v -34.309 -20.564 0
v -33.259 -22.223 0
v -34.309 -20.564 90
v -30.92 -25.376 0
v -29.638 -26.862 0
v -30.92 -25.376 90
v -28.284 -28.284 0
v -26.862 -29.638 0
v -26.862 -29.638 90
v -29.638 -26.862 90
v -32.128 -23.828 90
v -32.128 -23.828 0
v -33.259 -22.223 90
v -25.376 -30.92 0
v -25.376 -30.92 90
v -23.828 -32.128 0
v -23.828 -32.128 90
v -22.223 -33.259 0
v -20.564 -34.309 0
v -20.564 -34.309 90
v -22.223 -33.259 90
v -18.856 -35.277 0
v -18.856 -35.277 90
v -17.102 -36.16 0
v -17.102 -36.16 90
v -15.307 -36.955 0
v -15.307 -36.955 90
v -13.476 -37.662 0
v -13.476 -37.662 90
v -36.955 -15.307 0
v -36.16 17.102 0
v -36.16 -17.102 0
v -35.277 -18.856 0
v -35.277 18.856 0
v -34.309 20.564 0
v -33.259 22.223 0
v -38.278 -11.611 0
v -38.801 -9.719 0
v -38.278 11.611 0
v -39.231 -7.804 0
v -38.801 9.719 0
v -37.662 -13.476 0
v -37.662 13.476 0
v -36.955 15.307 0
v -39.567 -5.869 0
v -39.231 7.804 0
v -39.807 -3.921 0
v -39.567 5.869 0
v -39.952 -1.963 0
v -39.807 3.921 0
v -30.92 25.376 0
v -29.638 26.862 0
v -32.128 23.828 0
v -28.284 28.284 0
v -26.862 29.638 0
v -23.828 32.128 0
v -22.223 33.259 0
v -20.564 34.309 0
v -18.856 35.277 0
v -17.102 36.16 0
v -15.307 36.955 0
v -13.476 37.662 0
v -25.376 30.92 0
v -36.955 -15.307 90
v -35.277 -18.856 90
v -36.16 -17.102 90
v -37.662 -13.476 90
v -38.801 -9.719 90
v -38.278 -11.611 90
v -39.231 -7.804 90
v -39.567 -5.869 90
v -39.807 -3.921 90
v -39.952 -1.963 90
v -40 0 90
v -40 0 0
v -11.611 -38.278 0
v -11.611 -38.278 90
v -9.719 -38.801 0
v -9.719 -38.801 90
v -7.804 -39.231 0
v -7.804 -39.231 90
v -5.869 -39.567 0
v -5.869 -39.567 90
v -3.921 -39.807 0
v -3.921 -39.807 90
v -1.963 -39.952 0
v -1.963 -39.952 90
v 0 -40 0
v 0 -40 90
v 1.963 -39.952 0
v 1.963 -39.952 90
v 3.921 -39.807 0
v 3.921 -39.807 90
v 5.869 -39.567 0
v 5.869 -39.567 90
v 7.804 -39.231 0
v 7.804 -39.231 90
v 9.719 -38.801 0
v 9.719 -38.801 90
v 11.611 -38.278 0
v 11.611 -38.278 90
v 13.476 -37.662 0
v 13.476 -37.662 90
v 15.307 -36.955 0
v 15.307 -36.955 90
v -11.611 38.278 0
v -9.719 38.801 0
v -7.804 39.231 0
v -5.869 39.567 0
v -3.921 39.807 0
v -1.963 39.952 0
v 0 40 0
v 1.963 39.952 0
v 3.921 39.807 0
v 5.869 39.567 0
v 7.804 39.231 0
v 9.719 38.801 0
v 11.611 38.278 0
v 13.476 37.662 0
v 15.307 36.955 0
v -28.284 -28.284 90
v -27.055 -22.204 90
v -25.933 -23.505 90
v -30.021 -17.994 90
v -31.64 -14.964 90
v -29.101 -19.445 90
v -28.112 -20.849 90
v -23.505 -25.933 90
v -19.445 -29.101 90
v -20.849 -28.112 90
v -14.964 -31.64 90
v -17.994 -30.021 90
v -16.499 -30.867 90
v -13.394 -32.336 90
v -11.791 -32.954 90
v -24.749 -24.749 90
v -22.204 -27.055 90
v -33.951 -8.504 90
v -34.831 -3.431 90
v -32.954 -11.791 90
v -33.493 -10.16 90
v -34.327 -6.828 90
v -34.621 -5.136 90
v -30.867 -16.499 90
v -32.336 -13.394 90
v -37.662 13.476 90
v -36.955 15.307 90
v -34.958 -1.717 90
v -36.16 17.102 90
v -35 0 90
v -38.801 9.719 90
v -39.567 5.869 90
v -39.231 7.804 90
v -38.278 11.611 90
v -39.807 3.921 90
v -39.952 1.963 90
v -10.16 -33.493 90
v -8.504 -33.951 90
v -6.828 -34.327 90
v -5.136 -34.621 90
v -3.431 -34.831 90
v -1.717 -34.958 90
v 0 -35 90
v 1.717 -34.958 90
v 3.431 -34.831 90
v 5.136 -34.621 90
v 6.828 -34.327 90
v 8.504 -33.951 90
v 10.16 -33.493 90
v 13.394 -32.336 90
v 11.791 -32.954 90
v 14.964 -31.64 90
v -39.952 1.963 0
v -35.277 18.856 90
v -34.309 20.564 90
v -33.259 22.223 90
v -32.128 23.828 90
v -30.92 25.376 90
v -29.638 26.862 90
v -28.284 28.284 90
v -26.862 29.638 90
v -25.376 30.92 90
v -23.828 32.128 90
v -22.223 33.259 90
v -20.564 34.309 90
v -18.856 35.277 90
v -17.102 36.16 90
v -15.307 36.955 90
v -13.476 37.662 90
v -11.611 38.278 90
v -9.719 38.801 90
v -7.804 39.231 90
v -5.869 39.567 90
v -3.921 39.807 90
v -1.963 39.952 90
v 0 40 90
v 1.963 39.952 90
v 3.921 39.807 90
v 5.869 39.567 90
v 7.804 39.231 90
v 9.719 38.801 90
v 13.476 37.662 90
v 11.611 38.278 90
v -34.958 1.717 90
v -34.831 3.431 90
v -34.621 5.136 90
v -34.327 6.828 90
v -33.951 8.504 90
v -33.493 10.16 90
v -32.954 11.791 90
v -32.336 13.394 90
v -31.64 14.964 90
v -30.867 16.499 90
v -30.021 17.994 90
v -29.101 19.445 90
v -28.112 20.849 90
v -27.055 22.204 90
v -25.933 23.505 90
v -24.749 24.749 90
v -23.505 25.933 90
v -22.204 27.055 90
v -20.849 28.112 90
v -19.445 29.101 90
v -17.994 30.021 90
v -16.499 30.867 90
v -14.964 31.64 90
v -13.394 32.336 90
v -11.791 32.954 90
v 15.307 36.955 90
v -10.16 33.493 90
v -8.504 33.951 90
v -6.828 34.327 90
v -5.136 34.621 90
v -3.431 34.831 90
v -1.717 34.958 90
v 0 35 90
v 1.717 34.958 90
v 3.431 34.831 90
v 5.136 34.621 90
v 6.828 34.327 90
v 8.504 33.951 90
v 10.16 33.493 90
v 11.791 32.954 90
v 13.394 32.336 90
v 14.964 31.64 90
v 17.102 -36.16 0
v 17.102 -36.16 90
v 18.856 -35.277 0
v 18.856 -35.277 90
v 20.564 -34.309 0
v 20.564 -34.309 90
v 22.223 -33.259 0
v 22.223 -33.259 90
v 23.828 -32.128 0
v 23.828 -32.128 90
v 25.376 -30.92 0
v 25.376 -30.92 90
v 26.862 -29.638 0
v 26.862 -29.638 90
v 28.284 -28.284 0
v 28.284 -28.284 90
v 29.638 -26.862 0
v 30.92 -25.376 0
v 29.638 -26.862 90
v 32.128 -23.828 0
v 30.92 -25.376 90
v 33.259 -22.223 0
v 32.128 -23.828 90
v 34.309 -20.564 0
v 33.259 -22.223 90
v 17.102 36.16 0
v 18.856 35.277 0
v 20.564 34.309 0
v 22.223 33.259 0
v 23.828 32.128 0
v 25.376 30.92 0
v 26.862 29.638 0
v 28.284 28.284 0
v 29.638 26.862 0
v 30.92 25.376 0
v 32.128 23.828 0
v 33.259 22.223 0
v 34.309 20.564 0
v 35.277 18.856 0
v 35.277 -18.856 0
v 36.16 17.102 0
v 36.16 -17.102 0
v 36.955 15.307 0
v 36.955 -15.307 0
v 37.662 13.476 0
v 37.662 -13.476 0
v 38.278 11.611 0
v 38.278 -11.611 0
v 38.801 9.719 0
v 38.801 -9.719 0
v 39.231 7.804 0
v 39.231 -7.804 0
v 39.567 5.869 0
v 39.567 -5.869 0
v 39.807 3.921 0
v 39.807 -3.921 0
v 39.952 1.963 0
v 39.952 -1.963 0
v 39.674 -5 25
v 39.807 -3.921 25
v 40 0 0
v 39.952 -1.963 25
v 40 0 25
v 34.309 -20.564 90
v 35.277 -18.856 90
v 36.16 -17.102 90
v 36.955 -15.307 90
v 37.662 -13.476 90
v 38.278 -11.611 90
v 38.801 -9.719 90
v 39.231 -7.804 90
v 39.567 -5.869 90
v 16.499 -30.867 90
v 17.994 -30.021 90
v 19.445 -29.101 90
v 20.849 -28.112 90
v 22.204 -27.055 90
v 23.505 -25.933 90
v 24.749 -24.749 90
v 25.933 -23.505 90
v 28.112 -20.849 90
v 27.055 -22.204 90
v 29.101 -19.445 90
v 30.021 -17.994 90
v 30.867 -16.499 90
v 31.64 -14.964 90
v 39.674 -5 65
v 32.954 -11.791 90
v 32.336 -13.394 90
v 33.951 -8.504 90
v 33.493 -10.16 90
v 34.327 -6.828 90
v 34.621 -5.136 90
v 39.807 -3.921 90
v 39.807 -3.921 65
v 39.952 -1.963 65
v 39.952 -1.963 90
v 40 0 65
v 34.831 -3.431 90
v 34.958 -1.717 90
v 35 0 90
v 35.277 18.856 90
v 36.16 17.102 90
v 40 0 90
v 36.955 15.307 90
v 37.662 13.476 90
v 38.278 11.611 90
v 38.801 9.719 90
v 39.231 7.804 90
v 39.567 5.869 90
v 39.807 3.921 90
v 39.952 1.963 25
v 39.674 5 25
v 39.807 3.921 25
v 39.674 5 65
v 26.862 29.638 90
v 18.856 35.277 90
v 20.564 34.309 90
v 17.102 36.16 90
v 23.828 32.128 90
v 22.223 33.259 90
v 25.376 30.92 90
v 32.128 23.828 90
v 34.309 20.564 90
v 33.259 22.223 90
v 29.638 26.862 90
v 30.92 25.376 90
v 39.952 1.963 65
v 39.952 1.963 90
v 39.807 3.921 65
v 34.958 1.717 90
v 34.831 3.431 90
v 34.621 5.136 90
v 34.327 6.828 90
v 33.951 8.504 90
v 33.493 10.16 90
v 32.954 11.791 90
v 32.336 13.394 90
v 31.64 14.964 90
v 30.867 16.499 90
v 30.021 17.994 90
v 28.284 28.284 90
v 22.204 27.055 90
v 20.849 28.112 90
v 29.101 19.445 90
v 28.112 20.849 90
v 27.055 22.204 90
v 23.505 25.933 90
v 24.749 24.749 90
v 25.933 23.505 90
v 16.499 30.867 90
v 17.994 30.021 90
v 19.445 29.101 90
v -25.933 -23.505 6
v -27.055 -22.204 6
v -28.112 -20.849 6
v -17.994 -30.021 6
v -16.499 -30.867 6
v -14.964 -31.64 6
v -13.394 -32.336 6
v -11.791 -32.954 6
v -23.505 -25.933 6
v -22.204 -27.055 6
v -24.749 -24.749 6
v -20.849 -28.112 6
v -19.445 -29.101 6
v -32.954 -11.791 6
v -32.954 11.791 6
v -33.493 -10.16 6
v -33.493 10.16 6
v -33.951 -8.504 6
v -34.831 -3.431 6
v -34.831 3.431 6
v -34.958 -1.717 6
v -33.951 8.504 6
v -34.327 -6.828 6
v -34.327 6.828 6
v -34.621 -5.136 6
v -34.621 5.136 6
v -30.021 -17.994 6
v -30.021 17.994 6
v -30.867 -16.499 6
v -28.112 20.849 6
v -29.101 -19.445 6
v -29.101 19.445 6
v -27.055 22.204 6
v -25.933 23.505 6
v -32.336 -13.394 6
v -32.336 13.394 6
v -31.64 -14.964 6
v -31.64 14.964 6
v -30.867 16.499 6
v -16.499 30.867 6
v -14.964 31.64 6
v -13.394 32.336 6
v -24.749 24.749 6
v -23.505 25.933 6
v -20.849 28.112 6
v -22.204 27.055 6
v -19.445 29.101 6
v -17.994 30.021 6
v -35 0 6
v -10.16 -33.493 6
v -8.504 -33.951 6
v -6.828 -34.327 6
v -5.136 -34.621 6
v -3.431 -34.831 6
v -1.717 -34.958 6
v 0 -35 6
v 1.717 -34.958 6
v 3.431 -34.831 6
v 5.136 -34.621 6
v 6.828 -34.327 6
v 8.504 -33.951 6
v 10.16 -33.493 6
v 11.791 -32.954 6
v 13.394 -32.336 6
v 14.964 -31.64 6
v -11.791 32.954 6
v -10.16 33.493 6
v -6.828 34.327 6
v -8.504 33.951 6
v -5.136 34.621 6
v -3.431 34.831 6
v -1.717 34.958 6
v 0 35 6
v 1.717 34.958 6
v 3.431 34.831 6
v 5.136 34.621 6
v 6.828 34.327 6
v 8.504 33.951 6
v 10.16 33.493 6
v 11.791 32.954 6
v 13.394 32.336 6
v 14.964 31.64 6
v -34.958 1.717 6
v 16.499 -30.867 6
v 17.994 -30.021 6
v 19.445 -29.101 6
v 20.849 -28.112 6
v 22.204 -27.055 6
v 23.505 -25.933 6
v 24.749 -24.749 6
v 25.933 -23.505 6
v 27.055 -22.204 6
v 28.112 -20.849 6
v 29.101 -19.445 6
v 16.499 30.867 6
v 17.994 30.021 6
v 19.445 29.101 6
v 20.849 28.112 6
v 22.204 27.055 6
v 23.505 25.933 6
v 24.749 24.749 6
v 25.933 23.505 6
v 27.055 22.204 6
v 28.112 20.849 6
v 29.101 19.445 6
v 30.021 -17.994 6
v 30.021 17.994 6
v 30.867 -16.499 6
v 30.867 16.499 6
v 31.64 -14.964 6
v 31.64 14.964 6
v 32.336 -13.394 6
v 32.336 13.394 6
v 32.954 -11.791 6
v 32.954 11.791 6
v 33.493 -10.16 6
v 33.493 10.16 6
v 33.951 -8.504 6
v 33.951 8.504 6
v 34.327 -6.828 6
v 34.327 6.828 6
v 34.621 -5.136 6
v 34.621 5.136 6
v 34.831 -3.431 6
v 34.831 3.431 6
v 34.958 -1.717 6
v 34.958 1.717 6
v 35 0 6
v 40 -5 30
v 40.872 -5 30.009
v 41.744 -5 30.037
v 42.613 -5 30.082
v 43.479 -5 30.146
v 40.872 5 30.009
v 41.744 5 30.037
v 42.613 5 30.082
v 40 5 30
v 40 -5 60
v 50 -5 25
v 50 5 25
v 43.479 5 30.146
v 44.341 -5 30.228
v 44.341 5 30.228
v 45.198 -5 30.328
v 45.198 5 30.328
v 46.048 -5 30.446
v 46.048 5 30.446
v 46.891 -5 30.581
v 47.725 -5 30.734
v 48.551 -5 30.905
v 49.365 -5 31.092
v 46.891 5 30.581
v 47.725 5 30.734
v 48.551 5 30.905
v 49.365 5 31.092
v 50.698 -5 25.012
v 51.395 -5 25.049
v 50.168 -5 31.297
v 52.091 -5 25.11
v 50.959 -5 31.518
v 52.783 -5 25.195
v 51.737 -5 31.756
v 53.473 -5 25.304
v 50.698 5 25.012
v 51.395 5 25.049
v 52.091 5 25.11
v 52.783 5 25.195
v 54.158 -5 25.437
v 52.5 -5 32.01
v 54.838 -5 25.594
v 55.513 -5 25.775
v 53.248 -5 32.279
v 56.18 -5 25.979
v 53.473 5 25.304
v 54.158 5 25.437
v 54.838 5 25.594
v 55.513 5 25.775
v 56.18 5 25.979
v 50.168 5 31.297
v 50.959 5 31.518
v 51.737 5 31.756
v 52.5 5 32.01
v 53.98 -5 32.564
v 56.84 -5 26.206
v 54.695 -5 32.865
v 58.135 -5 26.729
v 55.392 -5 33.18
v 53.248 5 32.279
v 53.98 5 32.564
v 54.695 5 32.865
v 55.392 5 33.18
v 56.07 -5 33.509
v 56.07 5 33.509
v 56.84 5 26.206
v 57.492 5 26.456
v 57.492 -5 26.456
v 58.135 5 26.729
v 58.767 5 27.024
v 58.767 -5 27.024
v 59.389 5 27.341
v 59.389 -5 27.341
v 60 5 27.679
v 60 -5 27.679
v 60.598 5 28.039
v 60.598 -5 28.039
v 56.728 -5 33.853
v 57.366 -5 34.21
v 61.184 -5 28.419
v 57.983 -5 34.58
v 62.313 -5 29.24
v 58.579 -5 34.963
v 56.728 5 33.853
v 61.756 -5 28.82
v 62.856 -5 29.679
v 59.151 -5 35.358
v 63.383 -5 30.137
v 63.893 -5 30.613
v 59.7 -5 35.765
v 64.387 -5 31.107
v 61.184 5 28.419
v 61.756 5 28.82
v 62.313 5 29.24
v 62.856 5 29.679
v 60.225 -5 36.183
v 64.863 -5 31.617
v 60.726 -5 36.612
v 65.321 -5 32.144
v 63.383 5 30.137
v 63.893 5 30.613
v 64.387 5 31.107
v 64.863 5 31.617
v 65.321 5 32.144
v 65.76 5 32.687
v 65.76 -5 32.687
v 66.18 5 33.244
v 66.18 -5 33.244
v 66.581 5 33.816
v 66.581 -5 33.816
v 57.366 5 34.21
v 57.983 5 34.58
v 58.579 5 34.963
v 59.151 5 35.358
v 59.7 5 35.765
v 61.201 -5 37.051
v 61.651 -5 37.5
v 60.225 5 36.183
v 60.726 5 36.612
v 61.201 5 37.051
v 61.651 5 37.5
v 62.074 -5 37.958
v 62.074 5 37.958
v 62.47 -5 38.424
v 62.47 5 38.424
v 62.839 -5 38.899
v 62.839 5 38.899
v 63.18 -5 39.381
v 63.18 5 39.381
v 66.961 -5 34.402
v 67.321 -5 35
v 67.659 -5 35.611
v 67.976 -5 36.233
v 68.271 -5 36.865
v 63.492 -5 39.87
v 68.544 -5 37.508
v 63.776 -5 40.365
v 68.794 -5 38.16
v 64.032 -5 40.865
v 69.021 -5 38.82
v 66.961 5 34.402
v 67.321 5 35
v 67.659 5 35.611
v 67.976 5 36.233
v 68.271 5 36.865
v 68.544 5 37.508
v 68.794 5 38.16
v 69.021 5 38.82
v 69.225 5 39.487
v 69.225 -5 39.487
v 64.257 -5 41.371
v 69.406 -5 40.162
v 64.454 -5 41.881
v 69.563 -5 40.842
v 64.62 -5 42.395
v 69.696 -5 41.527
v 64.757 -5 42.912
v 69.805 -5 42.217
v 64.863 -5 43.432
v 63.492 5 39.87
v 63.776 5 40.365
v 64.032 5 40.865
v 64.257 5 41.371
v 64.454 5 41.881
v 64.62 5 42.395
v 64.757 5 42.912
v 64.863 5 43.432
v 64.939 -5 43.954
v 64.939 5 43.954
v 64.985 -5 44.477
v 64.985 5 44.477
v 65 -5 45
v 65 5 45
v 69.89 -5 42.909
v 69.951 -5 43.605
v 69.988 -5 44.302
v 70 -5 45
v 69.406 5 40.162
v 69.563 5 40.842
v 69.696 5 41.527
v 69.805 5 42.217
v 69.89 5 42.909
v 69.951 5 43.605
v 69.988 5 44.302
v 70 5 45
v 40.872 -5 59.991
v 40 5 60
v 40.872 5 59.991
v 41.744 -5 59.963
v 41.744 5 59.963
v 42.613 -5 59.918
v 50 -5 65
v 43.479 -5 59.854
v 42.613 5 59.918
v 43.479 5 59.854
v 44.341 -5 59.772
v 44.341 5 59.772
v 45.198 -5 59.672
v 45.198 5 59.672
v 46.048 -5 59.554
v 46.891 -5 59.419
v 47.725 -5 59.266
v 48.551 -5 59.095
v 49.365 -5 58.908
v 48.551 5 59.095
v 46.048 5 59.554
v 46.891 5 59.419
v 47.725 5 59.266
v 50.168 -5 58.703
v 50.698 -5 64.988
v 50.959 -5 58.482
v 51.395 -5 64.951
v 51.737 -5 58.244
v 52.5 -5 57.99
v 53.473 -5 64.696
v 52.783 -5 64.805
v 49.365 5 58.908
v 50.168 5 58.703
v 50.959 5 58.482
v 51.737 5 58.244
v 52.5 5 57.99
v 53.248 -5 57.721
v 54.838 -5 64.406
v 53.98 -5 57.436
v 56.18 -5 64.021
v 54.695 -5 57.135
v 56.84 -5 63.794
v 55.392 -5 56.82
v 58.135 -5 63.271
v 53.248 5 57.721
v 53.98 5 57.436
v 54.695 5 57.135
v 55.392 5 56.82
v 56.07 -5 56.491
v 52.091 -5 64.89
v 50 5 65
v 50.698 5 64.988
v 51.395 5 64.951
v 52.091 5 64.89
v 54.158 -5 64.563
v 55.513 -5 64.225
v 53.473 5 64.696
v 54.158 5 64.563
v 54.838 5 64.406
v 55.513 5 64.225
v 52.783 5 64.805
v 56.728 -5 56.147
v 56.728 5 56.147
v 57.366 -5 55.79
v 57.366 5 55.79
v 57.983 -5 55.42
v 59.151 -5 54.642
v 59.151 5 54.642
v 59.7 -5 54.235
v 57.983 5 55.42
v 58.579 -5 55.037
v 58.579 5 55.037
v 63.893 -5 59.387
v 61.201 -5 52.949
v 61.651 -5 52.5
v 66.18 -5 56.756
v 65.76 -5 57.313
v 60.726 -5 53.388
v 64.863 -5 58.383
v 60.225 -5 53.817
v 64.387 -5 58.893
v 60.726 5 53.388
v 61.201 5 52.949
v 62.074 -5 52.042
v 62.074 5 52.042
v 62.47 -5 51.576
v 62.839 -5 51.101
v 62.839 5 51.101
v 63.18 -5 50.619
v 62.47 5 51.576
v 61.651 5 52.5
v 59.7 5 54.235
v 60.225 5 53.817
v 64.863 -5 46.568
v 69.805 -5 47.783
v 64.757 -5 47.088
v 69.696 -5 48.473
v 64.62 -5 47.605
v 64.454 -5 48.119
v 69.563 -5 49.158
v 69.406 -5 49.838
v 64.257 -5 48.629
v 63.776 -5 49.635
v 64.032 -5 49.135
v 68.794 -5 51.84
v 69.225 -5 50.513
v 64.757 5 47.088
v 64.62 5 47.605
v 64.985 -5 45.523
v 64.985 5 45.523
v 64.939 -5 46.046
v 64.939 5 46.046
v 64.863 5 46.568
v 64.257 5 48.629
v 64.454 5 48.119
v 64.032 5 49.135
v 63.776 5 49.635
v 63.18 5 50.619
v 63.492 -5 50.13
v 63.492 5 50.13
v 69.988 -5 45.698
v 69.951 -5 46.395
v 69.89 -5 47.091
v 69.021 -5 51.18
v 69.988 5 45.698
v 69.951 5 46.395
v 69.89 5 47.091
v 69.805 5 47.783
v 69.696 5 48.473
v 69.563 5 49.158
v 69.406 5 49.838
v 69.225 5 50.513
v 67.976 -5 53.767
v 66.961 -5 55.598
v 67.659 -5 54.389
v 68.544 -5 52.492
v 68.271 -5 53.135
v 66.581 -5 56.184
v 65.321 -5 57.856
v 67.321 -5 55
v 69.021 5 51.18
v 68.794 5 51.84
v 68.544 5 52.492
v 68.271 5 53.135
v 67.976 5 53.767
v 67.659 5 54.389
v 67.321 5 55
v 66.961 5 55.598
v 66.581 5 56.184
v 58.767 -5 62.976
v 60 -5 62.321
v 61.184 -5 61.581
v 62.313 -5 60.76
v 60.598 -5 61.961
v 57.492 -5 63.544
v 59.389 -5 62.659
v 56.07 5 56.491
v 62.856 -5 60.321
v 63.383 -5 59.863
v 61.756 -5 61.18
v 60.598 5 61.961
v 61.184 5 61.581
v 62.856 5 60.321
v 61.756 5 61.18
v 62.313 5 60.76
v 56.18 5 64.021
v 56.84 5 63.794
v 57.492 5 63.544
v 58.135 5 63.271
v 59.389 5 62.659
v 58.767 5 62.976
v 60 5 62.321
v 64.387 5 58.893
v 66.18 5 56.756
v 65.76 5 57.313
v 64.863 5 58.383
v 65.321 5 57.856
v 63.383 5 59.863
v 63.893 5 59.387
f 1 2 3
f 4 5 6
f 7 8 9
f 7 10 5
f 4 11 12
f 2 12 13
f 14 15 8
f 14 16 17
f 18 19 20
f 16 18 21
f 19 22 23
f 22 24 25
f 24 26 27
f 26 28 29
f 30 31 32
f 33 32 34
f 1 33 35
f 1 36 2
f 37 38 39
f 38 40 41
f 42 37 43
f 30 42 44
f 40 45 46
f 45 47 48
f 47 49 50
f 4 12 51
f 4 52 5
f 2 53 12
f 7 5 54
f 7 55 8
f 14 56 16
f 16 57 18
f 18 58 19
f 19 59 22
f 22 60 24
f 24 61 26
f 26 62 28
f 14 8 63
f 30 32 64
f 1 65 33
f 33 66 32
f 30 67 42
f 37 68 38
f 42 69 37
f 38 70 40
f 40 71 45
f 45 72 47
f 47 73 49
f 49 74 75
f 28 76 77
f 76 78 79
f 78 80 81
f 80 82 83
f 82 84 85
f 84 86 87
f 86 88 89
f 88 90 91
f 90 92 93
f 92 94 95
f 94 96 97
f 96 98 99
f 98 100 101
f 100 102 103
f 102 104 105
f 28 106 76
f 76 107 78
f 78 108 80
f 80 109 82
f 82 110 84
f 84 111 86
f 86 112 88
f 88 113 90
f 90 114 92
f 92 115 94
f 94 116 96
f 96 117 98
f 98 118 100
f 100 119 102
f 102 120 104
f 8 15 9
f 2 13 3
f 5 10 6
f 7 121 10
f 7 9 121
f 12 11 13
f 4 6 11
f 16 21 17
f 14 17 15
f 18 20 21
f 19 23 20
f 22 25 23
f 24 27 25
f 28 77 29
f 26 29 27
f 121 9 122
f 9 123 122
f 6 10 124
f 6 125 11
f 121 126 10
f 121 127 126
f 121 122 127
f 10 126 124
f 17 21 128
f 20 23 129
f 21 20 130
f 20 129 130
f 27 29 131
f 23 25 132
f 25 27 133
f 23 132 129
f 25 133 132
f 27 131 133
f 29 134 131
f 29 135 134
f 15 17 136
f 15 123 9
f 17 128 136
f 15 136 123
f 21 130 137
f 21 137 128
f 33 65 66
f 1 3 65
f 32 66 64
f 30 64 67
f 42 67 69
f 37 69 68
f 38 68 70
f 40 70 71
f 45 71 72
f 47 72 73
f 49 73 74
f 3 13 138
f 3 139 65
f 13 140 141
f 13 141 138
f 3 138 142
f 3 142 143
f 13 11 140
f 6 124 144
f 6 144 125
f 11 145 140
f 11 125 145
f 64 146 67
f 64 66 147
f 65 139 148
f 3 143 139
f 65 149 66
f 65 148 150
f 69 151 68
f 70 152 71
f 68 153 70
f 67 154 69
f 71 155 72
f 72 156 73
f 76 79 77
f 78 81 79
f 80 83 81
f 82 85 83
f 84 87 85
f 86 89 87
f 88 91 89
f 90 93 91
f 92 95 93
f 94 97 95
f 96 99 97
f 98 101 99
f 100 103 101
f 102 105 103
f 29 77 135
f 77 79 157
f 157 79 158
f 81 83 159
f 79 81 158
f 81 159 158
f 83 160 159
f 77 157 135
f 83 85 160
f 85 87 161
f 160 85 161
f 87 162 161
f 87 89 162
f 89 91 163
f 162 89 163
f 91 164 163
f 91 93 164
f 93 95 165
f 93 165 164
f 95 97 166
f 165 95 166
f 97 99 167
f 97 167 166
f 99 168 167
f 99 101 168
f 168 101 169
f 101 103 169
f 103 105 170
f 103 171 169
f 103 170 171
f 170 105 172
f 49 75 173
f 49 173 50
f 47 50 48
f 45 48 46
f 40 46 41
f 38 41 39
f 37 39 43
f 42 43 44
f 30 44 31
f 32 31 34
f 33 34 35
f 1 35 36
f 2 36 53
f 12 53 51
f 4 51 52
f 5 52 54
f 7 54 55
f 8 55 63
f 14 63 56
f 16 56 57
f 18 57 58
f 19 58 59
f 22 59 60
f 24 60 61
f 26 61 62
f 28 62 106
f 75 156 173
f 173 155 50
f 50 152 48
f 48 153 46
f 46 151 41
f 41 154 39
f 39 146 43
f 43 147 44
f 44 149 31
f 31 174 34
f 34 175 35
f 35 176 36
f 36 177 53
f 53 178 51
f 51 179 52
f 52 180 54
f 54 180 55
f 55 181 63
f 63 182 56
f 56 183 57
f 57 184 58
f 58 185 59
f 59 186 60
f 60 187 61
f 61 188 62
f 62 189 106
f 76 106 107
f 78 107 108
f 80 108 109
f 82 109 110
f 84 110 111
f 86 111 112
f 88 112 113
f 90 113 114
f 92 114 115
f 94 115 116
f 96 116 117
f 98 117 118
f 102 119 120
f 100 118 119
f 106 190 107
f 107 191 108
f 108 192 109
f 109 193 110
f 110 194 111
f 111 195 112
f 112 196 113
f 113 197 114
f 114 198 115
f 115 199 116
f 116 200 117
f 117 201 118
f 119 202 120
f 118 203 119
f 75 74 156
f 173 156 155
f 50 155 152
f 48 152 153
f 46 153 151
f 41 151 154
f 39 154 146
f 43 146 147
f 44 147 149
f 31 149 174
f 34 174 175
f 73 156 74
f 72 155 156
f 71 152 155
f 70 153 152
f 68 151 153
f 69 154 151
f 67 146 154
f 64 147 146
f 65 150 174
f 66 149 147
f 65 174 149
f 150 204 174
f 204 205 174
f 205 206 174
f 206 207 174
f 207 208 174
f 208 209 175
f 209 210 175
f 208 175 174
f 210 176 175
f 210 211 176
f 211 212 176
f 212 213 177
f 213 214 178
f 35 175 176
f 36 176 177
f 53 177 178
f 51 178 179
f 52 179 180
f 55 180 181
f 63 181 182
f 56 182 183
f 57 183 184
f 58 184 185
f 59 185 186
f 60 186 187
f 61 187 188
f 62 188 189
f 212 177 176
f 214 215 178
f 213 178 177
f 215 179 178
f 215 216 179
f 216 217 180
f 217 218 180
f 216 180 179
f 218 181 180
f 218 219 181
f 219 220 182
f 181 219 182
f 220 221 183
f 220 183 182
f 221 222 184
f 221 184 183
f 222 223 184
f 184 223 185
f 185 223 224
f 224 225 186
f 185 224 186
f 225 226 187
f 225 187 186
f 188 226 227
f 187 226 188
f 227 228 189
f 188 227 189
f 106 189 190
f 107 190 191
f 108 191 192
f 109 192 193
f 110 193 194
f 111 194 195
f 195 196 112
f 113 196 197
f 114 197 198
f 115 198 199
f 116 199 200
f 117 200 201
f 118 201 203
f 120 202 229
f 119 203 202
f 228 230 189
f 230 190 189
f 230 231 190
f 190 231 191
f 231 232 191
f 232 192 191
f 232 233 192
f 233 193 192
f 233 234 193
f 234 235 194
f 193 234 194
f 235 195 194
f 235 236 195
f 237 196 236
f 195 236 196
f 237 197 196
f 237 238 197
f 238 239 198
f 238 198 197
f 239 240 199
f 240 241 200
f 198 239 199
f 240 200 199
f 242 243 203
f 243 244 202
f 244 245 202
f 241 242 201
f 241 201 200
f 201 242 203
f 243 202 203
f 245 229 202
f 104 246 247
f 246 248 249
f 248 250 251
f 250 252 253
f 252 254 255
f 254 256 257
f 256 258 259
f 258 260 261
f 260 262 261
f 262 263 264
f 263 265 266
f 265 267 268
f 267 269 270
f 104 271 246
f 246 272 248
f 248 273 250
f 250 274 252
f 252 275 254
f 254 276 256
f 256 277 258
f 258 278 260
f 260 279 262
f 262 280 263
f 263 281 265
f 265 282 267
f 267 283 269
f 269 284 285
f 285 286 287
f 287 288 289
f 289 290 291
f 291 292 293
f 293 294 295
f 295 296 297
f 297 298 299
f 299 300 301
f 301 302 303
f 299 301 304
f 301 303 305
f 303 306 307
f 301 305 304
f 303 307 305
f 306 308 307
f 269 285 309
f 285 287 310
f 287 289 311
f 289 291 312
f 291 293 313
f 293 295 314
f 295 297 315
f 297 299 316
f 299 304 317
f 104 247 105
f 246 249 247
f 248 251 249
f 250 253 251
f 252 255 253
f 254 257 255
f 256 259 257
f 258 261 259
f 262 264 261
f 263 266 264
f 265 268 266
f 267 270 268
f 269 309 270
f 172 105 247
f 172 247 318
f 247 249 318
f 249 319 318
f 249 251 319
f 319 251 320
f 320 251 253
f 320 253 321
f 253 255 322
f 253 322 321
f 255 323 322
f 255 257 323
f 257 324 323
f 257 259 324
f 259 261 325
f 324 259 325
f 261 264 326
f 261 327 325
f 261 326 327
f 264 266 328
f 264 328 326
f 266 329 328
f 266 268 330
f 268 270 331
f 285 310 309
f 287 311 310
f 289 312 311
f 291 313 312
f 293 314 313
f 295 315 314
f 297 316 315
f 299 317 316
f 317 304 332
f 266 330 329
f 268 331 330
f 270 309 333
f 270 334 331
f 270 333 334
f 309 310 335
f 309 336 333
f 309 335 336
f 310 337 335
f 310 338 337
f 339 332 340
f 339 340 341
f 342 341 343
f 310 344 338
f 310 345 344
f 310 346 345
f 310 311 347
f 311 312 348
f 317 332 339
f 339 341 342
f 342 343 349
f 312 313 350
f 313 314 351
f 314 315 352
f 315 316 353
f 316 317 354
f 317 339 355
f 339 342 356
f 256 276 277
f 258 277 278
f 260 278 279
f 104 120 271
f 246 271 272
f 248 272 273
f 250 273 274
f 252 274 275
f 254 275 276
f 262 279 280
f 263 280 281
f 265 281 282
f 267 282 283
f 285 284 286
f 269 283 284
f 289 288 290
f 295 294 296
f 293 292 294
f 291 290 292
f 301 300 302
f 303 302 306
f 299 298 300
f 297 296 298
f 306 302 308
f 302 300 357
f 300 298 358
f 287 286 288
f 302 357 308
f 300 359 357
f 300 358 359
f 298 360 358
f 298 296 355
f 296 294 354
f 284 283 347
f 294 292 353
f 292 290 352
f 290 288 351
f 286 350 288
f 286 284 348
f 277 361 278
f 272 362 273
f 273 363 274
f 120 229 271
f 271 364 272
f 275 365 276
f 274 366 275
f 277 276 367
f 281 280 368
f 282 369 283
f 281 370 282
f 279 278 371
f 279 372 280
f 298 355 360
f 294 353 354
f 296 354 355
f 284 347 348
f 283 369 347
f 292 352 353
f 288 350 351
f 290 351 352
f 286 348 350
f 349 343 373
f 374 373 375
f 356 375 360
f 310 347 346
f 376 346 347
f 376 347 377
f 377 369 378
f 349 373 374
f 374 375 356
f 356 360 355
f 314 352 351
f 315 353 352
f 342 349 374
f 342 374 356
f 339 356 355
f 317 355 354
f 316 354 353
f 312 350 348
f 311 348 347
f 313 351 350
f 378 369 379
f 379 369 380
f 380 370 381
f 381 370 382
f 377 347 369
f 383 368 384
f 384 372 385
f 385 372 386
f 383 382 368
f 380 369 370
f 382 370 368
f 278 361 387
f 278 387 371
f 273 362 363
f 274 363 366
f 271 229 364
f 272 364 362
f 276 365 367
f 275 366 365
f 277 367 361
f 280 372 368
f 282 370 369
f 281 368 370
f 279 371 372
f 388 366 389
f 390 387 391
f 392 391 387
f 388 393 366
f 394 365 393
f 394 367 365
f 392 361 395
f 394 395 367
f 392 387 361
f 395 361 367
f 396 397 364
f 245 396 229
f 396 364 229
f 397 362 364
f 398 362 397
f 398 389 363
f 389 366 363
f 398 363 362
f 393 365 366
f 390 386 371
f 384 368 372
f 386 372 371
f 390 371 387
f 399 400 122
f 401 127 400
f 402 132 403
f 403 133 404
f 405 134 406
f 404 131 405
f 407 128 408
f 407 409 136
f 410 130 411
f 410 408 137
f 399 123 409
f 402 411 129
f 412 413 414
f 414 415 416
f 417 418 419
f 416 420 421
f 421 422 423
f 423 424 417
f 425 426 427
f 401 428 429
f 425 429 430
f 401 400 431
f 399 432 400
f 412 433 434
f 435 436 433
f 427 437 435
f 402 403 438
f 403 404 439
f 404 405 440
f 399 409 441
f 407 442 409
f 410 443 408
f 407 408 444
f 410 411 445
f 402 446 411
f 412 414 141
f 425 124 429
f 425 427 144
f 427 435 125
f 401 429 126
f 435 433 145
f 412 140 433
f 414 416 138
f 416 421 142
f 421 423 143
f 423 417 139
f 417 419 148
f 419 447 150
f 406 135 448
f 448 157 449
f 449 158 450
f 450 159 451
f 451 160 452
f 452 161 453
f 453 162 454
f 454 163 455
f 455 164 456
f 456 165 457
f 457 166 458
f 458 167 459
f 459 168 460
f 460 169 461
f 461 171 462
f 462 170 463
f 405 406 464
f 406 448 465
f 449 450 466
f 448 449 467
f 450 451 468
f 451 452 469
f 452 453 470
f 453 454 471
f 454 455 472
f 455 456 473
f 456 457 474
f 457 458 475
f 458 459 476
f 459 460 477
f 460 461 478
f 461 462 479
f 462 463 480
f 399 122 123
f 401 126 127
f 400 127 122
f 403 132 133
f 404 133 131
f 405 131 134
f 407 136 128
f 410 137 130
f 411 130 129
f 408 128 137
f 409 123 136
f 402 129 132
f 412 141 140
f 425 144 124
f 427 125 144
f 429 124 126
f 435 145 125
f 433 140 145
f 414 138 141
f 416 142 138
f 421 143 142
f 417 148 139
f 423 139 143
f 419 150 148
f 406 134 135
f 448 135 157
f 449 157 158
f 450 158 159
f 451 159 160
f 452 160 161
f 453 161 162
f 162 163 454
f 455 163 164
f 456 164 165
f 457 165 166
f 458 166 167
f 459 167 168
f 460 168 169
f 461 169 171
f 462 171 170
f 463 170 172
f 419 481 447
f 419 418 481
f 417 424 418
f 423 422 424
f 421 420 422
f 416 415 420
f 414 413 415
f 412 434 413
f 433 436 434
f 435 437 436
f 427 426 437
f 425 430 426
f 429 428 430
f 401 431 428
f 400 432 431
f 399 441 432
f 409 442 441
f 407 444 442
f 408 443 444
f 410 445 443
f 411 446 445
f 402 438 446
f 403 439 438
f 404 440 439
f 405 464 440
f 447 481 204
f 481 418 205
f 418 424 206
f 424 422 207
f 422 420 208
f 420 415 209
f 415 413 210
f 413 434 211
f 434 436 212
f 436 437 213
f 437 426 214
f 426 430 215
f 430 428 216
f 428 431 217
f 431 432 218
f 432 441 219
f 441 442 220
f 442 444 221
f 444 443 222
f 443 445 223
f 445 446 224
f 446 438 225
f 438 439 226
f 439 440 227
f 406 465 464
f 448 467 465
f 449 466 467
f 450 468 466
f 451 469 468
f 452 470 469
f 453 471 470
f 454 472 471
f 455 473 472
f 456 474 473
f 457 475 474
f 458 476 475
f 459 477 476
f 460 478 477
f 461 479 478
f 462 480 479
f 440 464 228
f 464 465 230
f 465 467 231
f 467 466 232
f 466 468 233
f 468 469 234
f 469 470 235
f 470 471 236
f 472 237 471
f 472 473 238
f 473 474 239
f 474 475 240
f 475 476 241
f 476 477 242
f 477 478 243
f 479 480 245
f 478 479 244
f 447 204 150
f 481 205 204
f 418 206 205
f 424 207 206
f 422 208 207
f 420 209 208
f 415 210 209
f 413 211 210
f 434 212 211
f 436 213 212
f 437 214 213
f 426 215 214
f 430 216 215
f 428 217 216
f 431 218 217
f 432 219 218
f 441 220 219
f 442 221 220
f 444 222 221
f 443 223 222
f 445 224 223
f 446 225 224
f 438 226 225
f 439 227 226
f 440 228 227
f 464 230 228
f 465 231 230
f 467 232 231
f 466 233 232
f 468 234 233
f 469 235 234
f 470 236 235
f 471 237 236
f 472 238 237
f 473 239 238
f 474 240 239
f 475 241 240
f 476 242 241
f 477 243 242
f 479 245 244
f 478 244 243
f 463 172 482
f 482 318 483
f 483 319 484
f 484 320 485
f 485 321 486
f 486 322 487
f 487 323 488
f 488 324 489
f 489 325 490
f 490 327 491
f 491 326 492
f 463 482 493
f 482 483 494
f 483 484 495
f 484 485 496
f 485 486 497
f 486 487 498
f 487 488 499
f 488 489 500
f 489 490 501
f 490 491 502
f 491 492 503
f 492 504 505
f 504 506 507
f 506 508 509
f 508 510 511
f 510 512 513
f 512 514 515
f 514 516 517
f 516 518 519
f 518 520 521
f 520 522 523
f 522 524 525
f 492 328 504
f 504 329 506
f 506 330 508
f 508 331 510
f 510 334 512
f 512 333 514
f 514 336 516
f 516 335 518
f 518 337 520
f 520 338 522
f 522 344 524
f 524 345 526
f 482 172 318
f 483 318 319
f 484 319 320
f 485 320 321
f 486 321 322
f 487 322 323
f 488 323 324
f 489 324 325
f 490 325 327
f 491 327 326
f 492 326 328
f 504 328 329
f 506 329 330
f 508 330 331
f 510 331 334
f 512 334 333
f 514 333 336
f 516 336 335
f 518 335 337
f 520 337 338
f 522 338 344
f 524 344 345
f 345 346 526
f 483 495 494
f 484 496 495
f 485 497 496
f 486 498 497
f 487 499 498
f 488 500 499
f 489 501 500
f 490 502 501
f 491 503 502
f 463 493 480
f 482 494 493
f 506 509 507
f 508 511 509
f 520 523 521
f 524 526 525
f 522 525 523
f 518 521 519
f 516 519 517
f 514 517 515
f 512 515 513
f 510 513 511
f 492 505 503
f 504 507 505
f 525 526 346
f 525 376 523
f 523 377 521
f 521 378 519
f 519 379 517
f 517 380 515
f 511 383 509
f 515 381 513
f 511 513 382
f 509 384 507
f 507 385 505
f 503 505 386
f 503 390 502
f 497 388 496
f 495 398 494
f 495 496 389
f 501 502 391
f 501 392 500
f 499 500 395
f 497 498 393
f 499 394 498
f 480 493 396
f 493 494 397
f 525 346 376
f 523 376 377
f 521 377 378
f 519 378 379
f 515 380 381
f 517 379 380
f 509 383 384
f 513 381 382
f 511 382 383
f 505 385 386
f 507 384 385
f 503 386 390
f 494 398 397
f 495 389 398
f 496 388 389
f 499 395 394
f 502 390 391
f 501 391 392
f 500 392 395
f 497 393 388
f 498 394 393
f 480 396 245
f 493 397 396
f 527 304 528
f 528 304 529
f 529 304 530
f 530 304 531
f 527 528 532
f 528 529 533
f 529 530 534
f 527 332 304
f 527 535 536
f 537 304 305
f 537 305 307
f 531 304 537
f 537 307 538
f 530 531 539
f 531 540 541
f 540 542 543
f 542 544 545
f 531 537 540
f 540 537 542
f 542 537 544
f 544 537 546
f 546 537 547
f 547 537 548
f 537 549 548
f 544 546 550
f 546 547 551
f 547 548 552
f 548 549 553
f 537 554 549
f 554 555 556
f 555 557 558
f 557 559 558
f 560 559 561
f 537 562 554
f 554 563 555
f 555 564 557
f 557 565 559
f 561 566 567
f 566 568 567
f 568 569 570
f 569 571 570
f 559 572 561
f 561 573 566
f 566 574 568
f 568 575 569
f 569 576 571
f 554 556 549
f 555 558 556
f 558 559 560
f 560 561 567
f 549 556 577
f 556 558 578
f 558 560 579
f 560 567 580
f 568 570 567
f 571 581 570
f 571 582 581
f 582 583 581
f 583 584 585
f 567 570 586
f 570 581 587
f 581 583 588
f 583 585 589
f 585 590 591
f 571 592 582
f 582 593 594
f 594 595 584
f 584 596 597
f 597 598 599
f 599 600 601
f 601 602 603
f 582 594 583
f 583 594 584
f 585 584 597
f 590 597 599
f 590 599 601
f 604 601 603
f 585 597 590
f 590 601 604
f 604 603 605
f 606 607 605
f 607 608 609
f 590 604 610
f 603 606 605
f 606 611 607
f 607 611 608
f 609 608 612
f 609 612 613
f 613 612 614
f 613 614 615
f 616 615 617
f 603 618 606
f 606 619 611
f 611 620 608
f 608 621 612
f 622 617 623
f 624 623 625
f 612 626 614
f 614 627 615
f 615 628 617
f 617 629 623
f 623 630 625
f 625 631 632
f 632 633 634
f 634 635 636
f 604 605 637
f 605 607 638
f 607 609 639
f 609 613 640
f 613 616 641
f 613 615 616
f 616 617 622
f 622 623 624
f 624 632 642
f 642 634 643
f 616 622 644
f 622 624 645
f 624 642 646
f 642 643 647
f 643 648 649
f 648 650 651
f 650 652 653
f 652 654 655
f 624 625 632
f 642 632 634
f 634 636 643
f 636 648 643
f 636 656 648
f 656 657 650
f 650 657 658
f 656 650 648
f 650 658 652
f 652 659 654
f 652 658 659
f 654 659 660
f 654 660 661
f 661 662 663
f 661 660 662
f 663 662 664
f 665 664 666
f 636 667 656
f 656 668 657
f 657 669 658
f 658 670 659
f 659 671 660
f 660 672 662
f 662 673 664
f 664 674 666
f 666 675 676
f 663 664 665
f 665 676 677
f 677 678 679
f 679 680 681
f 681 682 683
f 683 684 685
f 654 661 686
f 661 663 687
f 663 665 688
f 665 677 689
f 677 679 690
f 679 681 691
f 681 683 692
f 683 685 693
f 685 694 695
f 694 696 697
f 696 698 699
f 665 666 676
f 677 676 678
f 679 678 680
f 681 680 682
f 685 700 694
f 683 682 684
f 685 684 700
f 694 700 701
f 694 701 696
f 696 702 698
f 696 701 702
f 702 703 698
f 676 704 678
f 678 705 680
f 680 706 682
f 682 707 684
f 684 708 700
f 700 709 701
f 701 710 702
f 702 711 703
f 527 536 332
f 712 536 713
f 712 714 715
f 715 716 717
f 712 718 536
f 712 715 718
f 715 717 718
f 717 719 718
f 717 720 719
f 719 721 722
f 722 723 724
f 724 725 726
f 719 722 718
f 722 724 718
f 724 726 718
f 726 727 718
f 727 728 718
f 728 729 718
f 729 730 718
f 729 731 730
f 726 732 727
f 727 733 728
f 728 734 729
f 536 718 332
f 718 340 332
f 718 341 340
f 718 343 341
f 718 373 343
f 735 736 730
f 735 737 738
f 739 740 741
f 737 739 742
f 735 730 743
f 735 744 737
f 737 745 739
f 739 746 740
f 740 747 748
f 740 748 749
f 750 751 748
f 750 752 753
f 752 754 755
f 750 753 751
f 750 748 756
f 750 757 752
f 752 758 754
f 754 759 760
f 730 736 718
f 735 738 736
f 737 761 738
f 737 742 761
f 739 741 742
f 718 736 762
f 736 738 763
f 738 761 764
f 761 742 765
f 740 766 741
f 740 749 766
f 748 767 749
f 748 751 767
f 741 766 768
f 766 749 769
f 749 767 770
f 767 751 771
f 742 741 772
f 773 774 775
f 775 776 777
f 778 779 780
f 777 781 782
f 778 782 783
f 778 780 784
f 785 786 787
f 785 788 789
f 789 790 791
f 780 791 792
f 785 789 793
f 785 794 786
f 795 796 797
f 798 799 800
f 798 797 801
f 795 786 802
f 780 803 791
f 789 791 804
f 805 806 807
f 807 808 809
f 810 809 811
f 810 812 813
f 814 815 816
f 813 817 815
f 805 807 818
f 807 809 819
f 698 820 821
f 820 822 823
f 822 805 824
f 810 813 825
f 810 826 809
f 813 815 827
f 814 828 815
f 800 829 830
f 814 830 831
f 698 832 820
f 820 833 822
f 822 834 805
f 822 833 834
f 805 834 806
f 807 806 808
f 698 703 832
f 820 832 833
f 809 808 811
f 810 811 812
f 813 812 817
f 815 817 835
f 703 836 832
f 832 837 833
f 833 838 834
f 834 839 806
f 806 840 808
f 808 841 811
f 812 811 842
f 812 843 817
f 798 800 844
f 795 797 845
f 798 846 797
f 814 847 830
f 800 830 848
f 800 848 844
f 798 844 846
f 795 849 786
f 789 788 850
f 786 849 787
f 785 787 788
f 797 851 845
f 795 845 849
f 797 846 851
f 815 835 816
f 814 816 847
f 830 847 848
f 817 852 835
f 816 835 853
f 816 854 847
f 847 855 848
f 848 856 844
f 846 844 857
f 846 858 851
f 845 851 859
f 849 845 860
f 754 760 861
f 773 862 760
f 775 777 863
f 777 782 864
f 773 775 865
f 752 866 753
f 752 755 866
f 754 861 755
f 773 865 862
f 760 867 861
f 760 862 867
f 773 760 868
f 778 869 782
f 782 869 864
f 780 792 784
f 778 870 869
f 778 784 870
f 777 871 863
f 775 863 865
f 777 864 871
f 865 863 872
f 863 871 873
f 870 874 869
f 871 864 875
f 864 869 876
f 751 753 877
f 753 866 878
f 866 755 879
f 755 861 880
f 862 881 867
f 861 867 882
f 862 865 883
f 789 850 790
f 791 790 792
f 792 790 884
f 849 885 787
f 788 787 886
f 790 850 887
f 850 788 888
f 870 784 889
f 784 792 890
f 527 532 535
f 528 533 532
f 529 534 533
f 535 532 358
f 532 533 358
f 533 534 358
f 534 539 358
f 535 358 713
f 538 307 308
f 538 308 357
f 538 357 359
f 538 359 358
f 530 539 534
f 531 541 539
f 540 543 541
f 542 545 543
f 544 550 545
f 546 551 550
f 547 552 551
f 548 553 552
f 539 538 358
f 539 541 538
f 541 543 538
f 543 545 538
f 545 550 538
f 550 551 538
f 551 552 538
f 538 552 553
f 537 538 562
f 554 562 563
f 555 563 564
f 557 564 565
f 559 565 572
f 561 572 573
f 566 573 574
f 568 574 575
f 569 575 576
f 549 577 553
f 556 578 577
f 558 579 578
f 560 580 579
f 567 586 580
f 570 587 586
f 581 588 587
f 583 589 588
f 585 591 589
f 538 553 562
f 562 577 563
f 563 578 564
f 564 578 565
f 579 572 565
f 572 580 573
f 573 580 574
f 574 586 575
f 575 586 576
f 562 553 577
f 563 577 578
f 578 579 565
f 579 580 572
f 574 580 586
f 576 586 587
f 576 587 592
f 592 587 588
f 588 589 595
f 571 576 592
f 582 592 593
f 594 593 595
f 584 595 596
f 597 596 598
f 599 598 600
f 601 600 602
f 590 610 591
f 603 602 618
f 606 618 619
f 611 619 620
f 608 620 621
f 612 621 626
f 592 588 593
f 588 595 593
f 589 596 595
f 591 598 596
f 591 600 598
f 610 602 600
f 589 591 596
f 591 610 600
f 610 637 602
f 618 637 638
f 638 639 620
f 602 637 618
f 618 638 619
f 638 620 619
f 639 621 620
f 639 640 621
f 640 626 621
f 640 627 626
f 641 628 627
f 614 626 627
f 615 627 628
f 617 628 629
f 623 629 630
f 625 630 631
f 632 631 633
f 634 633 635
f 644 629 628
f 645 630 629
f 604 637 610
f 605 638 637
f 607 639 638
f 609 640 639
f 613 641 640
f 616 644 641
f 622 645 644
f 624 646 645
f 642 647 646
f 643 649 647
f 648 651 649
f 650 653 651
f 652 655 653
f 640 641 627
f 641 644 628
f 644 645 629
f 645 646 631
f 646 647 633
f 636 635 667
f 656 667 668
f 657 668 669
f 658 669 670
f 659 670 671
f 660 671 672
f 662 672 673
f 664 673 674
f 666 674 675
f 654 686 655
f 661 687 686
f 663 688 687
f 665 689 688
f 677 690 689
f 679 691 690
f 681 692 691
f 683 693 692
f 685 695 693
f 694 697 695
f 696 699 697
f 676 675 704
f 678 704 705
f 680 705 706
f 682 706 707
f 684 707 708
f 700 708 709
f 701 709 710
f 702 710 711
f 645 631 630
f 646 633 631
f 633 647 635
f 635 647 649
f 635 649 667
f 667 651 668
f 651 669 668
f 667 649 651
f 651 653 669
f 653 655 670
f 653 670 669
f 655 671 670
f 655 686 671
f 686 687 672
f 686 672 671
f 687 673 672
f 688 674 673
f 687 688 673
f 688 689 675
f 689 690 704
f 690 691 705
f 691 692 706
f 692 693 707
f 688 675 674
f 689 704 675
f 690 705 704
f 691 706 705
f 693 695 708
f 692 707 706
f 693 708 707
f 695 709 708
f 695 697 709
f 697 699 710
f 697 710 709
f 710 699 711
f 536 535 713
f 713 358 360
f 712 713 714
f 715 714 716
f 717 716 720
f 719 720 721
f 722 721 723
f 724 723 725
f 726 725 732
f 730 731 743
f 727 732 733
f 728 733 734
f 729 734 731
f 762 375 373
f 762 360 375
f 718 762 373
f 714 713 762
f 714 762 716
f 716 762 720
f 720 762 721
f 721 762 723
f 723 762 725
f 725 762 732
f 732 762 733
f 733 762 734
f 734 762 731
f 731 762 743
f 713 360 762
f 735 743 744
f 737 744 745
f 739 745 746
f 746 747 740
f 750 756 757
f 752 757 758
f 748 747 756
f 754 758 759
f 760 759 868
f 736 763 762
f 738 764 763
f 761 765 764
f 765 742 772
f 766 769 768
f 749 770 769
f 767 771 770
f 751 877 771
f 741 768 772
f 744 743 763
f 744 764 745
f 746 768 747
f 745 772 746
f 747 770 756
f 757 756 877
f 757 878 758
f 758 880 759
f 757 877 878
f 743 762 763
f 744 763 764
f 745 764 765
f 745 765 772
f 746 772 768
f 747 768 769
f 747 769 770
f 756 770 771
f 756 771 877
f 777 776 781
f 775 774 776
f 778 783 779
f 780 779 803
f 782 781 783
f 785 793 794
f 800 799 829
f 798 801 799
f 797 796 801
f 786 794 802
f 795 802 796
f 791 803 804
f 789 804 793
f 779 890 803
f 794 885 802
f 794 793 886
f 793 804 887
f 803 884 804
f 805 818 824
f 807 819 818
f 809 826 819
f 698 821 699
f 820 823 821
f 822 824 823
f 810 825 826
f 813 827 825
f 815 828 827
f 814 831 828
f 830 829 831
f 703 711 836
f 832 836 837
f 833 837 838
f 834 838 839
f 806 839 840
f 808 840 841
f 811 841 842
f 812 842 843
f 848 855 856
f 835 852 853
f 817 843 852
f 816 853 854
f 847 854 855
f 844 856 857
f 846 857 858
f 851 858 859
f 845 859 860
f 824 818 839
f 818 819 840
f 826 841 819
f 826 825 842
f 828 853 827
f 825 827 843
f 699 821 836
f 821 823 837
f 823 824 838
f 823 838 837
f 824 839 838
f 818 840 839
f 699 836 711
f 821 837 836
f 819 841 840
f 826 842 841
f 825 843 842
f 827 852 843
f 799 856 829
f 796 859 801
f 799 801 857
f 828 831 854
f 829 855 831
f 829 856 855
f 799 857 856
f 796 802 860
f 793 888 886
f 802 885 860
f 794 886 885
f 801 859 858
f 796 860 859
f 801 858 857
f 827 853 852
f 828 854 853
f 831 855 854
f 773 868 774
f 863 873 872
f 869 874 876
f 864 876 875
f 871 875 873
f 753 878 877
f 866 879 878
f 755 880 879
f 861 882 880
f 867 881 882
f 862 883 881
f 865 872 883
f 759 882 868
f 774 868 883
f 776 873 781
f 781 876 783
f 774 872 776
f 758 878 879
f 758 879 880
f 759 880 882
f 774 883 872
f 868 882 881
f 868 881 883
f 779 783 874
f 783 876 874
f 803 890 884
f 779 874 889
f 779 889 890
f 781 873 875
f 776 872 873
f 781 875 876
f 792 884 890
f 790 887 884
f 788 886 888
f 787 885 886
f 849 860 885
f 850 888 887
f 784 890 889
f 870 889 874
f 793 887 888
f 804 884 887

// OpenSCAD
$fn = 128;

module mug_body() {
    difference() {
        cylinder(h = 90, r = 40);
        translate([0, 0, 6])
            cylinder(h = 90, r = 35);
    }
}

module handle() {
    rotate([90, 0, 0])
        linear_extrude(height = 10, center = true, convexity = 10)
            difference() {
                polygon(points = concat(
                    [[35, 25]],
                    [for (a = [-90:2:90])
                        [50 + 20 * cos(a), 45 + 20 * sin(a)]],
                    [[35, 65]]
                ));

                polygon(points = [
                    for (a = [-90:2:90])
                        [40 + 25 * cos(a), 45 + 15 * sin(a)]
                ]);
            }
}

union() {
    mug_body();
    handle();
}
